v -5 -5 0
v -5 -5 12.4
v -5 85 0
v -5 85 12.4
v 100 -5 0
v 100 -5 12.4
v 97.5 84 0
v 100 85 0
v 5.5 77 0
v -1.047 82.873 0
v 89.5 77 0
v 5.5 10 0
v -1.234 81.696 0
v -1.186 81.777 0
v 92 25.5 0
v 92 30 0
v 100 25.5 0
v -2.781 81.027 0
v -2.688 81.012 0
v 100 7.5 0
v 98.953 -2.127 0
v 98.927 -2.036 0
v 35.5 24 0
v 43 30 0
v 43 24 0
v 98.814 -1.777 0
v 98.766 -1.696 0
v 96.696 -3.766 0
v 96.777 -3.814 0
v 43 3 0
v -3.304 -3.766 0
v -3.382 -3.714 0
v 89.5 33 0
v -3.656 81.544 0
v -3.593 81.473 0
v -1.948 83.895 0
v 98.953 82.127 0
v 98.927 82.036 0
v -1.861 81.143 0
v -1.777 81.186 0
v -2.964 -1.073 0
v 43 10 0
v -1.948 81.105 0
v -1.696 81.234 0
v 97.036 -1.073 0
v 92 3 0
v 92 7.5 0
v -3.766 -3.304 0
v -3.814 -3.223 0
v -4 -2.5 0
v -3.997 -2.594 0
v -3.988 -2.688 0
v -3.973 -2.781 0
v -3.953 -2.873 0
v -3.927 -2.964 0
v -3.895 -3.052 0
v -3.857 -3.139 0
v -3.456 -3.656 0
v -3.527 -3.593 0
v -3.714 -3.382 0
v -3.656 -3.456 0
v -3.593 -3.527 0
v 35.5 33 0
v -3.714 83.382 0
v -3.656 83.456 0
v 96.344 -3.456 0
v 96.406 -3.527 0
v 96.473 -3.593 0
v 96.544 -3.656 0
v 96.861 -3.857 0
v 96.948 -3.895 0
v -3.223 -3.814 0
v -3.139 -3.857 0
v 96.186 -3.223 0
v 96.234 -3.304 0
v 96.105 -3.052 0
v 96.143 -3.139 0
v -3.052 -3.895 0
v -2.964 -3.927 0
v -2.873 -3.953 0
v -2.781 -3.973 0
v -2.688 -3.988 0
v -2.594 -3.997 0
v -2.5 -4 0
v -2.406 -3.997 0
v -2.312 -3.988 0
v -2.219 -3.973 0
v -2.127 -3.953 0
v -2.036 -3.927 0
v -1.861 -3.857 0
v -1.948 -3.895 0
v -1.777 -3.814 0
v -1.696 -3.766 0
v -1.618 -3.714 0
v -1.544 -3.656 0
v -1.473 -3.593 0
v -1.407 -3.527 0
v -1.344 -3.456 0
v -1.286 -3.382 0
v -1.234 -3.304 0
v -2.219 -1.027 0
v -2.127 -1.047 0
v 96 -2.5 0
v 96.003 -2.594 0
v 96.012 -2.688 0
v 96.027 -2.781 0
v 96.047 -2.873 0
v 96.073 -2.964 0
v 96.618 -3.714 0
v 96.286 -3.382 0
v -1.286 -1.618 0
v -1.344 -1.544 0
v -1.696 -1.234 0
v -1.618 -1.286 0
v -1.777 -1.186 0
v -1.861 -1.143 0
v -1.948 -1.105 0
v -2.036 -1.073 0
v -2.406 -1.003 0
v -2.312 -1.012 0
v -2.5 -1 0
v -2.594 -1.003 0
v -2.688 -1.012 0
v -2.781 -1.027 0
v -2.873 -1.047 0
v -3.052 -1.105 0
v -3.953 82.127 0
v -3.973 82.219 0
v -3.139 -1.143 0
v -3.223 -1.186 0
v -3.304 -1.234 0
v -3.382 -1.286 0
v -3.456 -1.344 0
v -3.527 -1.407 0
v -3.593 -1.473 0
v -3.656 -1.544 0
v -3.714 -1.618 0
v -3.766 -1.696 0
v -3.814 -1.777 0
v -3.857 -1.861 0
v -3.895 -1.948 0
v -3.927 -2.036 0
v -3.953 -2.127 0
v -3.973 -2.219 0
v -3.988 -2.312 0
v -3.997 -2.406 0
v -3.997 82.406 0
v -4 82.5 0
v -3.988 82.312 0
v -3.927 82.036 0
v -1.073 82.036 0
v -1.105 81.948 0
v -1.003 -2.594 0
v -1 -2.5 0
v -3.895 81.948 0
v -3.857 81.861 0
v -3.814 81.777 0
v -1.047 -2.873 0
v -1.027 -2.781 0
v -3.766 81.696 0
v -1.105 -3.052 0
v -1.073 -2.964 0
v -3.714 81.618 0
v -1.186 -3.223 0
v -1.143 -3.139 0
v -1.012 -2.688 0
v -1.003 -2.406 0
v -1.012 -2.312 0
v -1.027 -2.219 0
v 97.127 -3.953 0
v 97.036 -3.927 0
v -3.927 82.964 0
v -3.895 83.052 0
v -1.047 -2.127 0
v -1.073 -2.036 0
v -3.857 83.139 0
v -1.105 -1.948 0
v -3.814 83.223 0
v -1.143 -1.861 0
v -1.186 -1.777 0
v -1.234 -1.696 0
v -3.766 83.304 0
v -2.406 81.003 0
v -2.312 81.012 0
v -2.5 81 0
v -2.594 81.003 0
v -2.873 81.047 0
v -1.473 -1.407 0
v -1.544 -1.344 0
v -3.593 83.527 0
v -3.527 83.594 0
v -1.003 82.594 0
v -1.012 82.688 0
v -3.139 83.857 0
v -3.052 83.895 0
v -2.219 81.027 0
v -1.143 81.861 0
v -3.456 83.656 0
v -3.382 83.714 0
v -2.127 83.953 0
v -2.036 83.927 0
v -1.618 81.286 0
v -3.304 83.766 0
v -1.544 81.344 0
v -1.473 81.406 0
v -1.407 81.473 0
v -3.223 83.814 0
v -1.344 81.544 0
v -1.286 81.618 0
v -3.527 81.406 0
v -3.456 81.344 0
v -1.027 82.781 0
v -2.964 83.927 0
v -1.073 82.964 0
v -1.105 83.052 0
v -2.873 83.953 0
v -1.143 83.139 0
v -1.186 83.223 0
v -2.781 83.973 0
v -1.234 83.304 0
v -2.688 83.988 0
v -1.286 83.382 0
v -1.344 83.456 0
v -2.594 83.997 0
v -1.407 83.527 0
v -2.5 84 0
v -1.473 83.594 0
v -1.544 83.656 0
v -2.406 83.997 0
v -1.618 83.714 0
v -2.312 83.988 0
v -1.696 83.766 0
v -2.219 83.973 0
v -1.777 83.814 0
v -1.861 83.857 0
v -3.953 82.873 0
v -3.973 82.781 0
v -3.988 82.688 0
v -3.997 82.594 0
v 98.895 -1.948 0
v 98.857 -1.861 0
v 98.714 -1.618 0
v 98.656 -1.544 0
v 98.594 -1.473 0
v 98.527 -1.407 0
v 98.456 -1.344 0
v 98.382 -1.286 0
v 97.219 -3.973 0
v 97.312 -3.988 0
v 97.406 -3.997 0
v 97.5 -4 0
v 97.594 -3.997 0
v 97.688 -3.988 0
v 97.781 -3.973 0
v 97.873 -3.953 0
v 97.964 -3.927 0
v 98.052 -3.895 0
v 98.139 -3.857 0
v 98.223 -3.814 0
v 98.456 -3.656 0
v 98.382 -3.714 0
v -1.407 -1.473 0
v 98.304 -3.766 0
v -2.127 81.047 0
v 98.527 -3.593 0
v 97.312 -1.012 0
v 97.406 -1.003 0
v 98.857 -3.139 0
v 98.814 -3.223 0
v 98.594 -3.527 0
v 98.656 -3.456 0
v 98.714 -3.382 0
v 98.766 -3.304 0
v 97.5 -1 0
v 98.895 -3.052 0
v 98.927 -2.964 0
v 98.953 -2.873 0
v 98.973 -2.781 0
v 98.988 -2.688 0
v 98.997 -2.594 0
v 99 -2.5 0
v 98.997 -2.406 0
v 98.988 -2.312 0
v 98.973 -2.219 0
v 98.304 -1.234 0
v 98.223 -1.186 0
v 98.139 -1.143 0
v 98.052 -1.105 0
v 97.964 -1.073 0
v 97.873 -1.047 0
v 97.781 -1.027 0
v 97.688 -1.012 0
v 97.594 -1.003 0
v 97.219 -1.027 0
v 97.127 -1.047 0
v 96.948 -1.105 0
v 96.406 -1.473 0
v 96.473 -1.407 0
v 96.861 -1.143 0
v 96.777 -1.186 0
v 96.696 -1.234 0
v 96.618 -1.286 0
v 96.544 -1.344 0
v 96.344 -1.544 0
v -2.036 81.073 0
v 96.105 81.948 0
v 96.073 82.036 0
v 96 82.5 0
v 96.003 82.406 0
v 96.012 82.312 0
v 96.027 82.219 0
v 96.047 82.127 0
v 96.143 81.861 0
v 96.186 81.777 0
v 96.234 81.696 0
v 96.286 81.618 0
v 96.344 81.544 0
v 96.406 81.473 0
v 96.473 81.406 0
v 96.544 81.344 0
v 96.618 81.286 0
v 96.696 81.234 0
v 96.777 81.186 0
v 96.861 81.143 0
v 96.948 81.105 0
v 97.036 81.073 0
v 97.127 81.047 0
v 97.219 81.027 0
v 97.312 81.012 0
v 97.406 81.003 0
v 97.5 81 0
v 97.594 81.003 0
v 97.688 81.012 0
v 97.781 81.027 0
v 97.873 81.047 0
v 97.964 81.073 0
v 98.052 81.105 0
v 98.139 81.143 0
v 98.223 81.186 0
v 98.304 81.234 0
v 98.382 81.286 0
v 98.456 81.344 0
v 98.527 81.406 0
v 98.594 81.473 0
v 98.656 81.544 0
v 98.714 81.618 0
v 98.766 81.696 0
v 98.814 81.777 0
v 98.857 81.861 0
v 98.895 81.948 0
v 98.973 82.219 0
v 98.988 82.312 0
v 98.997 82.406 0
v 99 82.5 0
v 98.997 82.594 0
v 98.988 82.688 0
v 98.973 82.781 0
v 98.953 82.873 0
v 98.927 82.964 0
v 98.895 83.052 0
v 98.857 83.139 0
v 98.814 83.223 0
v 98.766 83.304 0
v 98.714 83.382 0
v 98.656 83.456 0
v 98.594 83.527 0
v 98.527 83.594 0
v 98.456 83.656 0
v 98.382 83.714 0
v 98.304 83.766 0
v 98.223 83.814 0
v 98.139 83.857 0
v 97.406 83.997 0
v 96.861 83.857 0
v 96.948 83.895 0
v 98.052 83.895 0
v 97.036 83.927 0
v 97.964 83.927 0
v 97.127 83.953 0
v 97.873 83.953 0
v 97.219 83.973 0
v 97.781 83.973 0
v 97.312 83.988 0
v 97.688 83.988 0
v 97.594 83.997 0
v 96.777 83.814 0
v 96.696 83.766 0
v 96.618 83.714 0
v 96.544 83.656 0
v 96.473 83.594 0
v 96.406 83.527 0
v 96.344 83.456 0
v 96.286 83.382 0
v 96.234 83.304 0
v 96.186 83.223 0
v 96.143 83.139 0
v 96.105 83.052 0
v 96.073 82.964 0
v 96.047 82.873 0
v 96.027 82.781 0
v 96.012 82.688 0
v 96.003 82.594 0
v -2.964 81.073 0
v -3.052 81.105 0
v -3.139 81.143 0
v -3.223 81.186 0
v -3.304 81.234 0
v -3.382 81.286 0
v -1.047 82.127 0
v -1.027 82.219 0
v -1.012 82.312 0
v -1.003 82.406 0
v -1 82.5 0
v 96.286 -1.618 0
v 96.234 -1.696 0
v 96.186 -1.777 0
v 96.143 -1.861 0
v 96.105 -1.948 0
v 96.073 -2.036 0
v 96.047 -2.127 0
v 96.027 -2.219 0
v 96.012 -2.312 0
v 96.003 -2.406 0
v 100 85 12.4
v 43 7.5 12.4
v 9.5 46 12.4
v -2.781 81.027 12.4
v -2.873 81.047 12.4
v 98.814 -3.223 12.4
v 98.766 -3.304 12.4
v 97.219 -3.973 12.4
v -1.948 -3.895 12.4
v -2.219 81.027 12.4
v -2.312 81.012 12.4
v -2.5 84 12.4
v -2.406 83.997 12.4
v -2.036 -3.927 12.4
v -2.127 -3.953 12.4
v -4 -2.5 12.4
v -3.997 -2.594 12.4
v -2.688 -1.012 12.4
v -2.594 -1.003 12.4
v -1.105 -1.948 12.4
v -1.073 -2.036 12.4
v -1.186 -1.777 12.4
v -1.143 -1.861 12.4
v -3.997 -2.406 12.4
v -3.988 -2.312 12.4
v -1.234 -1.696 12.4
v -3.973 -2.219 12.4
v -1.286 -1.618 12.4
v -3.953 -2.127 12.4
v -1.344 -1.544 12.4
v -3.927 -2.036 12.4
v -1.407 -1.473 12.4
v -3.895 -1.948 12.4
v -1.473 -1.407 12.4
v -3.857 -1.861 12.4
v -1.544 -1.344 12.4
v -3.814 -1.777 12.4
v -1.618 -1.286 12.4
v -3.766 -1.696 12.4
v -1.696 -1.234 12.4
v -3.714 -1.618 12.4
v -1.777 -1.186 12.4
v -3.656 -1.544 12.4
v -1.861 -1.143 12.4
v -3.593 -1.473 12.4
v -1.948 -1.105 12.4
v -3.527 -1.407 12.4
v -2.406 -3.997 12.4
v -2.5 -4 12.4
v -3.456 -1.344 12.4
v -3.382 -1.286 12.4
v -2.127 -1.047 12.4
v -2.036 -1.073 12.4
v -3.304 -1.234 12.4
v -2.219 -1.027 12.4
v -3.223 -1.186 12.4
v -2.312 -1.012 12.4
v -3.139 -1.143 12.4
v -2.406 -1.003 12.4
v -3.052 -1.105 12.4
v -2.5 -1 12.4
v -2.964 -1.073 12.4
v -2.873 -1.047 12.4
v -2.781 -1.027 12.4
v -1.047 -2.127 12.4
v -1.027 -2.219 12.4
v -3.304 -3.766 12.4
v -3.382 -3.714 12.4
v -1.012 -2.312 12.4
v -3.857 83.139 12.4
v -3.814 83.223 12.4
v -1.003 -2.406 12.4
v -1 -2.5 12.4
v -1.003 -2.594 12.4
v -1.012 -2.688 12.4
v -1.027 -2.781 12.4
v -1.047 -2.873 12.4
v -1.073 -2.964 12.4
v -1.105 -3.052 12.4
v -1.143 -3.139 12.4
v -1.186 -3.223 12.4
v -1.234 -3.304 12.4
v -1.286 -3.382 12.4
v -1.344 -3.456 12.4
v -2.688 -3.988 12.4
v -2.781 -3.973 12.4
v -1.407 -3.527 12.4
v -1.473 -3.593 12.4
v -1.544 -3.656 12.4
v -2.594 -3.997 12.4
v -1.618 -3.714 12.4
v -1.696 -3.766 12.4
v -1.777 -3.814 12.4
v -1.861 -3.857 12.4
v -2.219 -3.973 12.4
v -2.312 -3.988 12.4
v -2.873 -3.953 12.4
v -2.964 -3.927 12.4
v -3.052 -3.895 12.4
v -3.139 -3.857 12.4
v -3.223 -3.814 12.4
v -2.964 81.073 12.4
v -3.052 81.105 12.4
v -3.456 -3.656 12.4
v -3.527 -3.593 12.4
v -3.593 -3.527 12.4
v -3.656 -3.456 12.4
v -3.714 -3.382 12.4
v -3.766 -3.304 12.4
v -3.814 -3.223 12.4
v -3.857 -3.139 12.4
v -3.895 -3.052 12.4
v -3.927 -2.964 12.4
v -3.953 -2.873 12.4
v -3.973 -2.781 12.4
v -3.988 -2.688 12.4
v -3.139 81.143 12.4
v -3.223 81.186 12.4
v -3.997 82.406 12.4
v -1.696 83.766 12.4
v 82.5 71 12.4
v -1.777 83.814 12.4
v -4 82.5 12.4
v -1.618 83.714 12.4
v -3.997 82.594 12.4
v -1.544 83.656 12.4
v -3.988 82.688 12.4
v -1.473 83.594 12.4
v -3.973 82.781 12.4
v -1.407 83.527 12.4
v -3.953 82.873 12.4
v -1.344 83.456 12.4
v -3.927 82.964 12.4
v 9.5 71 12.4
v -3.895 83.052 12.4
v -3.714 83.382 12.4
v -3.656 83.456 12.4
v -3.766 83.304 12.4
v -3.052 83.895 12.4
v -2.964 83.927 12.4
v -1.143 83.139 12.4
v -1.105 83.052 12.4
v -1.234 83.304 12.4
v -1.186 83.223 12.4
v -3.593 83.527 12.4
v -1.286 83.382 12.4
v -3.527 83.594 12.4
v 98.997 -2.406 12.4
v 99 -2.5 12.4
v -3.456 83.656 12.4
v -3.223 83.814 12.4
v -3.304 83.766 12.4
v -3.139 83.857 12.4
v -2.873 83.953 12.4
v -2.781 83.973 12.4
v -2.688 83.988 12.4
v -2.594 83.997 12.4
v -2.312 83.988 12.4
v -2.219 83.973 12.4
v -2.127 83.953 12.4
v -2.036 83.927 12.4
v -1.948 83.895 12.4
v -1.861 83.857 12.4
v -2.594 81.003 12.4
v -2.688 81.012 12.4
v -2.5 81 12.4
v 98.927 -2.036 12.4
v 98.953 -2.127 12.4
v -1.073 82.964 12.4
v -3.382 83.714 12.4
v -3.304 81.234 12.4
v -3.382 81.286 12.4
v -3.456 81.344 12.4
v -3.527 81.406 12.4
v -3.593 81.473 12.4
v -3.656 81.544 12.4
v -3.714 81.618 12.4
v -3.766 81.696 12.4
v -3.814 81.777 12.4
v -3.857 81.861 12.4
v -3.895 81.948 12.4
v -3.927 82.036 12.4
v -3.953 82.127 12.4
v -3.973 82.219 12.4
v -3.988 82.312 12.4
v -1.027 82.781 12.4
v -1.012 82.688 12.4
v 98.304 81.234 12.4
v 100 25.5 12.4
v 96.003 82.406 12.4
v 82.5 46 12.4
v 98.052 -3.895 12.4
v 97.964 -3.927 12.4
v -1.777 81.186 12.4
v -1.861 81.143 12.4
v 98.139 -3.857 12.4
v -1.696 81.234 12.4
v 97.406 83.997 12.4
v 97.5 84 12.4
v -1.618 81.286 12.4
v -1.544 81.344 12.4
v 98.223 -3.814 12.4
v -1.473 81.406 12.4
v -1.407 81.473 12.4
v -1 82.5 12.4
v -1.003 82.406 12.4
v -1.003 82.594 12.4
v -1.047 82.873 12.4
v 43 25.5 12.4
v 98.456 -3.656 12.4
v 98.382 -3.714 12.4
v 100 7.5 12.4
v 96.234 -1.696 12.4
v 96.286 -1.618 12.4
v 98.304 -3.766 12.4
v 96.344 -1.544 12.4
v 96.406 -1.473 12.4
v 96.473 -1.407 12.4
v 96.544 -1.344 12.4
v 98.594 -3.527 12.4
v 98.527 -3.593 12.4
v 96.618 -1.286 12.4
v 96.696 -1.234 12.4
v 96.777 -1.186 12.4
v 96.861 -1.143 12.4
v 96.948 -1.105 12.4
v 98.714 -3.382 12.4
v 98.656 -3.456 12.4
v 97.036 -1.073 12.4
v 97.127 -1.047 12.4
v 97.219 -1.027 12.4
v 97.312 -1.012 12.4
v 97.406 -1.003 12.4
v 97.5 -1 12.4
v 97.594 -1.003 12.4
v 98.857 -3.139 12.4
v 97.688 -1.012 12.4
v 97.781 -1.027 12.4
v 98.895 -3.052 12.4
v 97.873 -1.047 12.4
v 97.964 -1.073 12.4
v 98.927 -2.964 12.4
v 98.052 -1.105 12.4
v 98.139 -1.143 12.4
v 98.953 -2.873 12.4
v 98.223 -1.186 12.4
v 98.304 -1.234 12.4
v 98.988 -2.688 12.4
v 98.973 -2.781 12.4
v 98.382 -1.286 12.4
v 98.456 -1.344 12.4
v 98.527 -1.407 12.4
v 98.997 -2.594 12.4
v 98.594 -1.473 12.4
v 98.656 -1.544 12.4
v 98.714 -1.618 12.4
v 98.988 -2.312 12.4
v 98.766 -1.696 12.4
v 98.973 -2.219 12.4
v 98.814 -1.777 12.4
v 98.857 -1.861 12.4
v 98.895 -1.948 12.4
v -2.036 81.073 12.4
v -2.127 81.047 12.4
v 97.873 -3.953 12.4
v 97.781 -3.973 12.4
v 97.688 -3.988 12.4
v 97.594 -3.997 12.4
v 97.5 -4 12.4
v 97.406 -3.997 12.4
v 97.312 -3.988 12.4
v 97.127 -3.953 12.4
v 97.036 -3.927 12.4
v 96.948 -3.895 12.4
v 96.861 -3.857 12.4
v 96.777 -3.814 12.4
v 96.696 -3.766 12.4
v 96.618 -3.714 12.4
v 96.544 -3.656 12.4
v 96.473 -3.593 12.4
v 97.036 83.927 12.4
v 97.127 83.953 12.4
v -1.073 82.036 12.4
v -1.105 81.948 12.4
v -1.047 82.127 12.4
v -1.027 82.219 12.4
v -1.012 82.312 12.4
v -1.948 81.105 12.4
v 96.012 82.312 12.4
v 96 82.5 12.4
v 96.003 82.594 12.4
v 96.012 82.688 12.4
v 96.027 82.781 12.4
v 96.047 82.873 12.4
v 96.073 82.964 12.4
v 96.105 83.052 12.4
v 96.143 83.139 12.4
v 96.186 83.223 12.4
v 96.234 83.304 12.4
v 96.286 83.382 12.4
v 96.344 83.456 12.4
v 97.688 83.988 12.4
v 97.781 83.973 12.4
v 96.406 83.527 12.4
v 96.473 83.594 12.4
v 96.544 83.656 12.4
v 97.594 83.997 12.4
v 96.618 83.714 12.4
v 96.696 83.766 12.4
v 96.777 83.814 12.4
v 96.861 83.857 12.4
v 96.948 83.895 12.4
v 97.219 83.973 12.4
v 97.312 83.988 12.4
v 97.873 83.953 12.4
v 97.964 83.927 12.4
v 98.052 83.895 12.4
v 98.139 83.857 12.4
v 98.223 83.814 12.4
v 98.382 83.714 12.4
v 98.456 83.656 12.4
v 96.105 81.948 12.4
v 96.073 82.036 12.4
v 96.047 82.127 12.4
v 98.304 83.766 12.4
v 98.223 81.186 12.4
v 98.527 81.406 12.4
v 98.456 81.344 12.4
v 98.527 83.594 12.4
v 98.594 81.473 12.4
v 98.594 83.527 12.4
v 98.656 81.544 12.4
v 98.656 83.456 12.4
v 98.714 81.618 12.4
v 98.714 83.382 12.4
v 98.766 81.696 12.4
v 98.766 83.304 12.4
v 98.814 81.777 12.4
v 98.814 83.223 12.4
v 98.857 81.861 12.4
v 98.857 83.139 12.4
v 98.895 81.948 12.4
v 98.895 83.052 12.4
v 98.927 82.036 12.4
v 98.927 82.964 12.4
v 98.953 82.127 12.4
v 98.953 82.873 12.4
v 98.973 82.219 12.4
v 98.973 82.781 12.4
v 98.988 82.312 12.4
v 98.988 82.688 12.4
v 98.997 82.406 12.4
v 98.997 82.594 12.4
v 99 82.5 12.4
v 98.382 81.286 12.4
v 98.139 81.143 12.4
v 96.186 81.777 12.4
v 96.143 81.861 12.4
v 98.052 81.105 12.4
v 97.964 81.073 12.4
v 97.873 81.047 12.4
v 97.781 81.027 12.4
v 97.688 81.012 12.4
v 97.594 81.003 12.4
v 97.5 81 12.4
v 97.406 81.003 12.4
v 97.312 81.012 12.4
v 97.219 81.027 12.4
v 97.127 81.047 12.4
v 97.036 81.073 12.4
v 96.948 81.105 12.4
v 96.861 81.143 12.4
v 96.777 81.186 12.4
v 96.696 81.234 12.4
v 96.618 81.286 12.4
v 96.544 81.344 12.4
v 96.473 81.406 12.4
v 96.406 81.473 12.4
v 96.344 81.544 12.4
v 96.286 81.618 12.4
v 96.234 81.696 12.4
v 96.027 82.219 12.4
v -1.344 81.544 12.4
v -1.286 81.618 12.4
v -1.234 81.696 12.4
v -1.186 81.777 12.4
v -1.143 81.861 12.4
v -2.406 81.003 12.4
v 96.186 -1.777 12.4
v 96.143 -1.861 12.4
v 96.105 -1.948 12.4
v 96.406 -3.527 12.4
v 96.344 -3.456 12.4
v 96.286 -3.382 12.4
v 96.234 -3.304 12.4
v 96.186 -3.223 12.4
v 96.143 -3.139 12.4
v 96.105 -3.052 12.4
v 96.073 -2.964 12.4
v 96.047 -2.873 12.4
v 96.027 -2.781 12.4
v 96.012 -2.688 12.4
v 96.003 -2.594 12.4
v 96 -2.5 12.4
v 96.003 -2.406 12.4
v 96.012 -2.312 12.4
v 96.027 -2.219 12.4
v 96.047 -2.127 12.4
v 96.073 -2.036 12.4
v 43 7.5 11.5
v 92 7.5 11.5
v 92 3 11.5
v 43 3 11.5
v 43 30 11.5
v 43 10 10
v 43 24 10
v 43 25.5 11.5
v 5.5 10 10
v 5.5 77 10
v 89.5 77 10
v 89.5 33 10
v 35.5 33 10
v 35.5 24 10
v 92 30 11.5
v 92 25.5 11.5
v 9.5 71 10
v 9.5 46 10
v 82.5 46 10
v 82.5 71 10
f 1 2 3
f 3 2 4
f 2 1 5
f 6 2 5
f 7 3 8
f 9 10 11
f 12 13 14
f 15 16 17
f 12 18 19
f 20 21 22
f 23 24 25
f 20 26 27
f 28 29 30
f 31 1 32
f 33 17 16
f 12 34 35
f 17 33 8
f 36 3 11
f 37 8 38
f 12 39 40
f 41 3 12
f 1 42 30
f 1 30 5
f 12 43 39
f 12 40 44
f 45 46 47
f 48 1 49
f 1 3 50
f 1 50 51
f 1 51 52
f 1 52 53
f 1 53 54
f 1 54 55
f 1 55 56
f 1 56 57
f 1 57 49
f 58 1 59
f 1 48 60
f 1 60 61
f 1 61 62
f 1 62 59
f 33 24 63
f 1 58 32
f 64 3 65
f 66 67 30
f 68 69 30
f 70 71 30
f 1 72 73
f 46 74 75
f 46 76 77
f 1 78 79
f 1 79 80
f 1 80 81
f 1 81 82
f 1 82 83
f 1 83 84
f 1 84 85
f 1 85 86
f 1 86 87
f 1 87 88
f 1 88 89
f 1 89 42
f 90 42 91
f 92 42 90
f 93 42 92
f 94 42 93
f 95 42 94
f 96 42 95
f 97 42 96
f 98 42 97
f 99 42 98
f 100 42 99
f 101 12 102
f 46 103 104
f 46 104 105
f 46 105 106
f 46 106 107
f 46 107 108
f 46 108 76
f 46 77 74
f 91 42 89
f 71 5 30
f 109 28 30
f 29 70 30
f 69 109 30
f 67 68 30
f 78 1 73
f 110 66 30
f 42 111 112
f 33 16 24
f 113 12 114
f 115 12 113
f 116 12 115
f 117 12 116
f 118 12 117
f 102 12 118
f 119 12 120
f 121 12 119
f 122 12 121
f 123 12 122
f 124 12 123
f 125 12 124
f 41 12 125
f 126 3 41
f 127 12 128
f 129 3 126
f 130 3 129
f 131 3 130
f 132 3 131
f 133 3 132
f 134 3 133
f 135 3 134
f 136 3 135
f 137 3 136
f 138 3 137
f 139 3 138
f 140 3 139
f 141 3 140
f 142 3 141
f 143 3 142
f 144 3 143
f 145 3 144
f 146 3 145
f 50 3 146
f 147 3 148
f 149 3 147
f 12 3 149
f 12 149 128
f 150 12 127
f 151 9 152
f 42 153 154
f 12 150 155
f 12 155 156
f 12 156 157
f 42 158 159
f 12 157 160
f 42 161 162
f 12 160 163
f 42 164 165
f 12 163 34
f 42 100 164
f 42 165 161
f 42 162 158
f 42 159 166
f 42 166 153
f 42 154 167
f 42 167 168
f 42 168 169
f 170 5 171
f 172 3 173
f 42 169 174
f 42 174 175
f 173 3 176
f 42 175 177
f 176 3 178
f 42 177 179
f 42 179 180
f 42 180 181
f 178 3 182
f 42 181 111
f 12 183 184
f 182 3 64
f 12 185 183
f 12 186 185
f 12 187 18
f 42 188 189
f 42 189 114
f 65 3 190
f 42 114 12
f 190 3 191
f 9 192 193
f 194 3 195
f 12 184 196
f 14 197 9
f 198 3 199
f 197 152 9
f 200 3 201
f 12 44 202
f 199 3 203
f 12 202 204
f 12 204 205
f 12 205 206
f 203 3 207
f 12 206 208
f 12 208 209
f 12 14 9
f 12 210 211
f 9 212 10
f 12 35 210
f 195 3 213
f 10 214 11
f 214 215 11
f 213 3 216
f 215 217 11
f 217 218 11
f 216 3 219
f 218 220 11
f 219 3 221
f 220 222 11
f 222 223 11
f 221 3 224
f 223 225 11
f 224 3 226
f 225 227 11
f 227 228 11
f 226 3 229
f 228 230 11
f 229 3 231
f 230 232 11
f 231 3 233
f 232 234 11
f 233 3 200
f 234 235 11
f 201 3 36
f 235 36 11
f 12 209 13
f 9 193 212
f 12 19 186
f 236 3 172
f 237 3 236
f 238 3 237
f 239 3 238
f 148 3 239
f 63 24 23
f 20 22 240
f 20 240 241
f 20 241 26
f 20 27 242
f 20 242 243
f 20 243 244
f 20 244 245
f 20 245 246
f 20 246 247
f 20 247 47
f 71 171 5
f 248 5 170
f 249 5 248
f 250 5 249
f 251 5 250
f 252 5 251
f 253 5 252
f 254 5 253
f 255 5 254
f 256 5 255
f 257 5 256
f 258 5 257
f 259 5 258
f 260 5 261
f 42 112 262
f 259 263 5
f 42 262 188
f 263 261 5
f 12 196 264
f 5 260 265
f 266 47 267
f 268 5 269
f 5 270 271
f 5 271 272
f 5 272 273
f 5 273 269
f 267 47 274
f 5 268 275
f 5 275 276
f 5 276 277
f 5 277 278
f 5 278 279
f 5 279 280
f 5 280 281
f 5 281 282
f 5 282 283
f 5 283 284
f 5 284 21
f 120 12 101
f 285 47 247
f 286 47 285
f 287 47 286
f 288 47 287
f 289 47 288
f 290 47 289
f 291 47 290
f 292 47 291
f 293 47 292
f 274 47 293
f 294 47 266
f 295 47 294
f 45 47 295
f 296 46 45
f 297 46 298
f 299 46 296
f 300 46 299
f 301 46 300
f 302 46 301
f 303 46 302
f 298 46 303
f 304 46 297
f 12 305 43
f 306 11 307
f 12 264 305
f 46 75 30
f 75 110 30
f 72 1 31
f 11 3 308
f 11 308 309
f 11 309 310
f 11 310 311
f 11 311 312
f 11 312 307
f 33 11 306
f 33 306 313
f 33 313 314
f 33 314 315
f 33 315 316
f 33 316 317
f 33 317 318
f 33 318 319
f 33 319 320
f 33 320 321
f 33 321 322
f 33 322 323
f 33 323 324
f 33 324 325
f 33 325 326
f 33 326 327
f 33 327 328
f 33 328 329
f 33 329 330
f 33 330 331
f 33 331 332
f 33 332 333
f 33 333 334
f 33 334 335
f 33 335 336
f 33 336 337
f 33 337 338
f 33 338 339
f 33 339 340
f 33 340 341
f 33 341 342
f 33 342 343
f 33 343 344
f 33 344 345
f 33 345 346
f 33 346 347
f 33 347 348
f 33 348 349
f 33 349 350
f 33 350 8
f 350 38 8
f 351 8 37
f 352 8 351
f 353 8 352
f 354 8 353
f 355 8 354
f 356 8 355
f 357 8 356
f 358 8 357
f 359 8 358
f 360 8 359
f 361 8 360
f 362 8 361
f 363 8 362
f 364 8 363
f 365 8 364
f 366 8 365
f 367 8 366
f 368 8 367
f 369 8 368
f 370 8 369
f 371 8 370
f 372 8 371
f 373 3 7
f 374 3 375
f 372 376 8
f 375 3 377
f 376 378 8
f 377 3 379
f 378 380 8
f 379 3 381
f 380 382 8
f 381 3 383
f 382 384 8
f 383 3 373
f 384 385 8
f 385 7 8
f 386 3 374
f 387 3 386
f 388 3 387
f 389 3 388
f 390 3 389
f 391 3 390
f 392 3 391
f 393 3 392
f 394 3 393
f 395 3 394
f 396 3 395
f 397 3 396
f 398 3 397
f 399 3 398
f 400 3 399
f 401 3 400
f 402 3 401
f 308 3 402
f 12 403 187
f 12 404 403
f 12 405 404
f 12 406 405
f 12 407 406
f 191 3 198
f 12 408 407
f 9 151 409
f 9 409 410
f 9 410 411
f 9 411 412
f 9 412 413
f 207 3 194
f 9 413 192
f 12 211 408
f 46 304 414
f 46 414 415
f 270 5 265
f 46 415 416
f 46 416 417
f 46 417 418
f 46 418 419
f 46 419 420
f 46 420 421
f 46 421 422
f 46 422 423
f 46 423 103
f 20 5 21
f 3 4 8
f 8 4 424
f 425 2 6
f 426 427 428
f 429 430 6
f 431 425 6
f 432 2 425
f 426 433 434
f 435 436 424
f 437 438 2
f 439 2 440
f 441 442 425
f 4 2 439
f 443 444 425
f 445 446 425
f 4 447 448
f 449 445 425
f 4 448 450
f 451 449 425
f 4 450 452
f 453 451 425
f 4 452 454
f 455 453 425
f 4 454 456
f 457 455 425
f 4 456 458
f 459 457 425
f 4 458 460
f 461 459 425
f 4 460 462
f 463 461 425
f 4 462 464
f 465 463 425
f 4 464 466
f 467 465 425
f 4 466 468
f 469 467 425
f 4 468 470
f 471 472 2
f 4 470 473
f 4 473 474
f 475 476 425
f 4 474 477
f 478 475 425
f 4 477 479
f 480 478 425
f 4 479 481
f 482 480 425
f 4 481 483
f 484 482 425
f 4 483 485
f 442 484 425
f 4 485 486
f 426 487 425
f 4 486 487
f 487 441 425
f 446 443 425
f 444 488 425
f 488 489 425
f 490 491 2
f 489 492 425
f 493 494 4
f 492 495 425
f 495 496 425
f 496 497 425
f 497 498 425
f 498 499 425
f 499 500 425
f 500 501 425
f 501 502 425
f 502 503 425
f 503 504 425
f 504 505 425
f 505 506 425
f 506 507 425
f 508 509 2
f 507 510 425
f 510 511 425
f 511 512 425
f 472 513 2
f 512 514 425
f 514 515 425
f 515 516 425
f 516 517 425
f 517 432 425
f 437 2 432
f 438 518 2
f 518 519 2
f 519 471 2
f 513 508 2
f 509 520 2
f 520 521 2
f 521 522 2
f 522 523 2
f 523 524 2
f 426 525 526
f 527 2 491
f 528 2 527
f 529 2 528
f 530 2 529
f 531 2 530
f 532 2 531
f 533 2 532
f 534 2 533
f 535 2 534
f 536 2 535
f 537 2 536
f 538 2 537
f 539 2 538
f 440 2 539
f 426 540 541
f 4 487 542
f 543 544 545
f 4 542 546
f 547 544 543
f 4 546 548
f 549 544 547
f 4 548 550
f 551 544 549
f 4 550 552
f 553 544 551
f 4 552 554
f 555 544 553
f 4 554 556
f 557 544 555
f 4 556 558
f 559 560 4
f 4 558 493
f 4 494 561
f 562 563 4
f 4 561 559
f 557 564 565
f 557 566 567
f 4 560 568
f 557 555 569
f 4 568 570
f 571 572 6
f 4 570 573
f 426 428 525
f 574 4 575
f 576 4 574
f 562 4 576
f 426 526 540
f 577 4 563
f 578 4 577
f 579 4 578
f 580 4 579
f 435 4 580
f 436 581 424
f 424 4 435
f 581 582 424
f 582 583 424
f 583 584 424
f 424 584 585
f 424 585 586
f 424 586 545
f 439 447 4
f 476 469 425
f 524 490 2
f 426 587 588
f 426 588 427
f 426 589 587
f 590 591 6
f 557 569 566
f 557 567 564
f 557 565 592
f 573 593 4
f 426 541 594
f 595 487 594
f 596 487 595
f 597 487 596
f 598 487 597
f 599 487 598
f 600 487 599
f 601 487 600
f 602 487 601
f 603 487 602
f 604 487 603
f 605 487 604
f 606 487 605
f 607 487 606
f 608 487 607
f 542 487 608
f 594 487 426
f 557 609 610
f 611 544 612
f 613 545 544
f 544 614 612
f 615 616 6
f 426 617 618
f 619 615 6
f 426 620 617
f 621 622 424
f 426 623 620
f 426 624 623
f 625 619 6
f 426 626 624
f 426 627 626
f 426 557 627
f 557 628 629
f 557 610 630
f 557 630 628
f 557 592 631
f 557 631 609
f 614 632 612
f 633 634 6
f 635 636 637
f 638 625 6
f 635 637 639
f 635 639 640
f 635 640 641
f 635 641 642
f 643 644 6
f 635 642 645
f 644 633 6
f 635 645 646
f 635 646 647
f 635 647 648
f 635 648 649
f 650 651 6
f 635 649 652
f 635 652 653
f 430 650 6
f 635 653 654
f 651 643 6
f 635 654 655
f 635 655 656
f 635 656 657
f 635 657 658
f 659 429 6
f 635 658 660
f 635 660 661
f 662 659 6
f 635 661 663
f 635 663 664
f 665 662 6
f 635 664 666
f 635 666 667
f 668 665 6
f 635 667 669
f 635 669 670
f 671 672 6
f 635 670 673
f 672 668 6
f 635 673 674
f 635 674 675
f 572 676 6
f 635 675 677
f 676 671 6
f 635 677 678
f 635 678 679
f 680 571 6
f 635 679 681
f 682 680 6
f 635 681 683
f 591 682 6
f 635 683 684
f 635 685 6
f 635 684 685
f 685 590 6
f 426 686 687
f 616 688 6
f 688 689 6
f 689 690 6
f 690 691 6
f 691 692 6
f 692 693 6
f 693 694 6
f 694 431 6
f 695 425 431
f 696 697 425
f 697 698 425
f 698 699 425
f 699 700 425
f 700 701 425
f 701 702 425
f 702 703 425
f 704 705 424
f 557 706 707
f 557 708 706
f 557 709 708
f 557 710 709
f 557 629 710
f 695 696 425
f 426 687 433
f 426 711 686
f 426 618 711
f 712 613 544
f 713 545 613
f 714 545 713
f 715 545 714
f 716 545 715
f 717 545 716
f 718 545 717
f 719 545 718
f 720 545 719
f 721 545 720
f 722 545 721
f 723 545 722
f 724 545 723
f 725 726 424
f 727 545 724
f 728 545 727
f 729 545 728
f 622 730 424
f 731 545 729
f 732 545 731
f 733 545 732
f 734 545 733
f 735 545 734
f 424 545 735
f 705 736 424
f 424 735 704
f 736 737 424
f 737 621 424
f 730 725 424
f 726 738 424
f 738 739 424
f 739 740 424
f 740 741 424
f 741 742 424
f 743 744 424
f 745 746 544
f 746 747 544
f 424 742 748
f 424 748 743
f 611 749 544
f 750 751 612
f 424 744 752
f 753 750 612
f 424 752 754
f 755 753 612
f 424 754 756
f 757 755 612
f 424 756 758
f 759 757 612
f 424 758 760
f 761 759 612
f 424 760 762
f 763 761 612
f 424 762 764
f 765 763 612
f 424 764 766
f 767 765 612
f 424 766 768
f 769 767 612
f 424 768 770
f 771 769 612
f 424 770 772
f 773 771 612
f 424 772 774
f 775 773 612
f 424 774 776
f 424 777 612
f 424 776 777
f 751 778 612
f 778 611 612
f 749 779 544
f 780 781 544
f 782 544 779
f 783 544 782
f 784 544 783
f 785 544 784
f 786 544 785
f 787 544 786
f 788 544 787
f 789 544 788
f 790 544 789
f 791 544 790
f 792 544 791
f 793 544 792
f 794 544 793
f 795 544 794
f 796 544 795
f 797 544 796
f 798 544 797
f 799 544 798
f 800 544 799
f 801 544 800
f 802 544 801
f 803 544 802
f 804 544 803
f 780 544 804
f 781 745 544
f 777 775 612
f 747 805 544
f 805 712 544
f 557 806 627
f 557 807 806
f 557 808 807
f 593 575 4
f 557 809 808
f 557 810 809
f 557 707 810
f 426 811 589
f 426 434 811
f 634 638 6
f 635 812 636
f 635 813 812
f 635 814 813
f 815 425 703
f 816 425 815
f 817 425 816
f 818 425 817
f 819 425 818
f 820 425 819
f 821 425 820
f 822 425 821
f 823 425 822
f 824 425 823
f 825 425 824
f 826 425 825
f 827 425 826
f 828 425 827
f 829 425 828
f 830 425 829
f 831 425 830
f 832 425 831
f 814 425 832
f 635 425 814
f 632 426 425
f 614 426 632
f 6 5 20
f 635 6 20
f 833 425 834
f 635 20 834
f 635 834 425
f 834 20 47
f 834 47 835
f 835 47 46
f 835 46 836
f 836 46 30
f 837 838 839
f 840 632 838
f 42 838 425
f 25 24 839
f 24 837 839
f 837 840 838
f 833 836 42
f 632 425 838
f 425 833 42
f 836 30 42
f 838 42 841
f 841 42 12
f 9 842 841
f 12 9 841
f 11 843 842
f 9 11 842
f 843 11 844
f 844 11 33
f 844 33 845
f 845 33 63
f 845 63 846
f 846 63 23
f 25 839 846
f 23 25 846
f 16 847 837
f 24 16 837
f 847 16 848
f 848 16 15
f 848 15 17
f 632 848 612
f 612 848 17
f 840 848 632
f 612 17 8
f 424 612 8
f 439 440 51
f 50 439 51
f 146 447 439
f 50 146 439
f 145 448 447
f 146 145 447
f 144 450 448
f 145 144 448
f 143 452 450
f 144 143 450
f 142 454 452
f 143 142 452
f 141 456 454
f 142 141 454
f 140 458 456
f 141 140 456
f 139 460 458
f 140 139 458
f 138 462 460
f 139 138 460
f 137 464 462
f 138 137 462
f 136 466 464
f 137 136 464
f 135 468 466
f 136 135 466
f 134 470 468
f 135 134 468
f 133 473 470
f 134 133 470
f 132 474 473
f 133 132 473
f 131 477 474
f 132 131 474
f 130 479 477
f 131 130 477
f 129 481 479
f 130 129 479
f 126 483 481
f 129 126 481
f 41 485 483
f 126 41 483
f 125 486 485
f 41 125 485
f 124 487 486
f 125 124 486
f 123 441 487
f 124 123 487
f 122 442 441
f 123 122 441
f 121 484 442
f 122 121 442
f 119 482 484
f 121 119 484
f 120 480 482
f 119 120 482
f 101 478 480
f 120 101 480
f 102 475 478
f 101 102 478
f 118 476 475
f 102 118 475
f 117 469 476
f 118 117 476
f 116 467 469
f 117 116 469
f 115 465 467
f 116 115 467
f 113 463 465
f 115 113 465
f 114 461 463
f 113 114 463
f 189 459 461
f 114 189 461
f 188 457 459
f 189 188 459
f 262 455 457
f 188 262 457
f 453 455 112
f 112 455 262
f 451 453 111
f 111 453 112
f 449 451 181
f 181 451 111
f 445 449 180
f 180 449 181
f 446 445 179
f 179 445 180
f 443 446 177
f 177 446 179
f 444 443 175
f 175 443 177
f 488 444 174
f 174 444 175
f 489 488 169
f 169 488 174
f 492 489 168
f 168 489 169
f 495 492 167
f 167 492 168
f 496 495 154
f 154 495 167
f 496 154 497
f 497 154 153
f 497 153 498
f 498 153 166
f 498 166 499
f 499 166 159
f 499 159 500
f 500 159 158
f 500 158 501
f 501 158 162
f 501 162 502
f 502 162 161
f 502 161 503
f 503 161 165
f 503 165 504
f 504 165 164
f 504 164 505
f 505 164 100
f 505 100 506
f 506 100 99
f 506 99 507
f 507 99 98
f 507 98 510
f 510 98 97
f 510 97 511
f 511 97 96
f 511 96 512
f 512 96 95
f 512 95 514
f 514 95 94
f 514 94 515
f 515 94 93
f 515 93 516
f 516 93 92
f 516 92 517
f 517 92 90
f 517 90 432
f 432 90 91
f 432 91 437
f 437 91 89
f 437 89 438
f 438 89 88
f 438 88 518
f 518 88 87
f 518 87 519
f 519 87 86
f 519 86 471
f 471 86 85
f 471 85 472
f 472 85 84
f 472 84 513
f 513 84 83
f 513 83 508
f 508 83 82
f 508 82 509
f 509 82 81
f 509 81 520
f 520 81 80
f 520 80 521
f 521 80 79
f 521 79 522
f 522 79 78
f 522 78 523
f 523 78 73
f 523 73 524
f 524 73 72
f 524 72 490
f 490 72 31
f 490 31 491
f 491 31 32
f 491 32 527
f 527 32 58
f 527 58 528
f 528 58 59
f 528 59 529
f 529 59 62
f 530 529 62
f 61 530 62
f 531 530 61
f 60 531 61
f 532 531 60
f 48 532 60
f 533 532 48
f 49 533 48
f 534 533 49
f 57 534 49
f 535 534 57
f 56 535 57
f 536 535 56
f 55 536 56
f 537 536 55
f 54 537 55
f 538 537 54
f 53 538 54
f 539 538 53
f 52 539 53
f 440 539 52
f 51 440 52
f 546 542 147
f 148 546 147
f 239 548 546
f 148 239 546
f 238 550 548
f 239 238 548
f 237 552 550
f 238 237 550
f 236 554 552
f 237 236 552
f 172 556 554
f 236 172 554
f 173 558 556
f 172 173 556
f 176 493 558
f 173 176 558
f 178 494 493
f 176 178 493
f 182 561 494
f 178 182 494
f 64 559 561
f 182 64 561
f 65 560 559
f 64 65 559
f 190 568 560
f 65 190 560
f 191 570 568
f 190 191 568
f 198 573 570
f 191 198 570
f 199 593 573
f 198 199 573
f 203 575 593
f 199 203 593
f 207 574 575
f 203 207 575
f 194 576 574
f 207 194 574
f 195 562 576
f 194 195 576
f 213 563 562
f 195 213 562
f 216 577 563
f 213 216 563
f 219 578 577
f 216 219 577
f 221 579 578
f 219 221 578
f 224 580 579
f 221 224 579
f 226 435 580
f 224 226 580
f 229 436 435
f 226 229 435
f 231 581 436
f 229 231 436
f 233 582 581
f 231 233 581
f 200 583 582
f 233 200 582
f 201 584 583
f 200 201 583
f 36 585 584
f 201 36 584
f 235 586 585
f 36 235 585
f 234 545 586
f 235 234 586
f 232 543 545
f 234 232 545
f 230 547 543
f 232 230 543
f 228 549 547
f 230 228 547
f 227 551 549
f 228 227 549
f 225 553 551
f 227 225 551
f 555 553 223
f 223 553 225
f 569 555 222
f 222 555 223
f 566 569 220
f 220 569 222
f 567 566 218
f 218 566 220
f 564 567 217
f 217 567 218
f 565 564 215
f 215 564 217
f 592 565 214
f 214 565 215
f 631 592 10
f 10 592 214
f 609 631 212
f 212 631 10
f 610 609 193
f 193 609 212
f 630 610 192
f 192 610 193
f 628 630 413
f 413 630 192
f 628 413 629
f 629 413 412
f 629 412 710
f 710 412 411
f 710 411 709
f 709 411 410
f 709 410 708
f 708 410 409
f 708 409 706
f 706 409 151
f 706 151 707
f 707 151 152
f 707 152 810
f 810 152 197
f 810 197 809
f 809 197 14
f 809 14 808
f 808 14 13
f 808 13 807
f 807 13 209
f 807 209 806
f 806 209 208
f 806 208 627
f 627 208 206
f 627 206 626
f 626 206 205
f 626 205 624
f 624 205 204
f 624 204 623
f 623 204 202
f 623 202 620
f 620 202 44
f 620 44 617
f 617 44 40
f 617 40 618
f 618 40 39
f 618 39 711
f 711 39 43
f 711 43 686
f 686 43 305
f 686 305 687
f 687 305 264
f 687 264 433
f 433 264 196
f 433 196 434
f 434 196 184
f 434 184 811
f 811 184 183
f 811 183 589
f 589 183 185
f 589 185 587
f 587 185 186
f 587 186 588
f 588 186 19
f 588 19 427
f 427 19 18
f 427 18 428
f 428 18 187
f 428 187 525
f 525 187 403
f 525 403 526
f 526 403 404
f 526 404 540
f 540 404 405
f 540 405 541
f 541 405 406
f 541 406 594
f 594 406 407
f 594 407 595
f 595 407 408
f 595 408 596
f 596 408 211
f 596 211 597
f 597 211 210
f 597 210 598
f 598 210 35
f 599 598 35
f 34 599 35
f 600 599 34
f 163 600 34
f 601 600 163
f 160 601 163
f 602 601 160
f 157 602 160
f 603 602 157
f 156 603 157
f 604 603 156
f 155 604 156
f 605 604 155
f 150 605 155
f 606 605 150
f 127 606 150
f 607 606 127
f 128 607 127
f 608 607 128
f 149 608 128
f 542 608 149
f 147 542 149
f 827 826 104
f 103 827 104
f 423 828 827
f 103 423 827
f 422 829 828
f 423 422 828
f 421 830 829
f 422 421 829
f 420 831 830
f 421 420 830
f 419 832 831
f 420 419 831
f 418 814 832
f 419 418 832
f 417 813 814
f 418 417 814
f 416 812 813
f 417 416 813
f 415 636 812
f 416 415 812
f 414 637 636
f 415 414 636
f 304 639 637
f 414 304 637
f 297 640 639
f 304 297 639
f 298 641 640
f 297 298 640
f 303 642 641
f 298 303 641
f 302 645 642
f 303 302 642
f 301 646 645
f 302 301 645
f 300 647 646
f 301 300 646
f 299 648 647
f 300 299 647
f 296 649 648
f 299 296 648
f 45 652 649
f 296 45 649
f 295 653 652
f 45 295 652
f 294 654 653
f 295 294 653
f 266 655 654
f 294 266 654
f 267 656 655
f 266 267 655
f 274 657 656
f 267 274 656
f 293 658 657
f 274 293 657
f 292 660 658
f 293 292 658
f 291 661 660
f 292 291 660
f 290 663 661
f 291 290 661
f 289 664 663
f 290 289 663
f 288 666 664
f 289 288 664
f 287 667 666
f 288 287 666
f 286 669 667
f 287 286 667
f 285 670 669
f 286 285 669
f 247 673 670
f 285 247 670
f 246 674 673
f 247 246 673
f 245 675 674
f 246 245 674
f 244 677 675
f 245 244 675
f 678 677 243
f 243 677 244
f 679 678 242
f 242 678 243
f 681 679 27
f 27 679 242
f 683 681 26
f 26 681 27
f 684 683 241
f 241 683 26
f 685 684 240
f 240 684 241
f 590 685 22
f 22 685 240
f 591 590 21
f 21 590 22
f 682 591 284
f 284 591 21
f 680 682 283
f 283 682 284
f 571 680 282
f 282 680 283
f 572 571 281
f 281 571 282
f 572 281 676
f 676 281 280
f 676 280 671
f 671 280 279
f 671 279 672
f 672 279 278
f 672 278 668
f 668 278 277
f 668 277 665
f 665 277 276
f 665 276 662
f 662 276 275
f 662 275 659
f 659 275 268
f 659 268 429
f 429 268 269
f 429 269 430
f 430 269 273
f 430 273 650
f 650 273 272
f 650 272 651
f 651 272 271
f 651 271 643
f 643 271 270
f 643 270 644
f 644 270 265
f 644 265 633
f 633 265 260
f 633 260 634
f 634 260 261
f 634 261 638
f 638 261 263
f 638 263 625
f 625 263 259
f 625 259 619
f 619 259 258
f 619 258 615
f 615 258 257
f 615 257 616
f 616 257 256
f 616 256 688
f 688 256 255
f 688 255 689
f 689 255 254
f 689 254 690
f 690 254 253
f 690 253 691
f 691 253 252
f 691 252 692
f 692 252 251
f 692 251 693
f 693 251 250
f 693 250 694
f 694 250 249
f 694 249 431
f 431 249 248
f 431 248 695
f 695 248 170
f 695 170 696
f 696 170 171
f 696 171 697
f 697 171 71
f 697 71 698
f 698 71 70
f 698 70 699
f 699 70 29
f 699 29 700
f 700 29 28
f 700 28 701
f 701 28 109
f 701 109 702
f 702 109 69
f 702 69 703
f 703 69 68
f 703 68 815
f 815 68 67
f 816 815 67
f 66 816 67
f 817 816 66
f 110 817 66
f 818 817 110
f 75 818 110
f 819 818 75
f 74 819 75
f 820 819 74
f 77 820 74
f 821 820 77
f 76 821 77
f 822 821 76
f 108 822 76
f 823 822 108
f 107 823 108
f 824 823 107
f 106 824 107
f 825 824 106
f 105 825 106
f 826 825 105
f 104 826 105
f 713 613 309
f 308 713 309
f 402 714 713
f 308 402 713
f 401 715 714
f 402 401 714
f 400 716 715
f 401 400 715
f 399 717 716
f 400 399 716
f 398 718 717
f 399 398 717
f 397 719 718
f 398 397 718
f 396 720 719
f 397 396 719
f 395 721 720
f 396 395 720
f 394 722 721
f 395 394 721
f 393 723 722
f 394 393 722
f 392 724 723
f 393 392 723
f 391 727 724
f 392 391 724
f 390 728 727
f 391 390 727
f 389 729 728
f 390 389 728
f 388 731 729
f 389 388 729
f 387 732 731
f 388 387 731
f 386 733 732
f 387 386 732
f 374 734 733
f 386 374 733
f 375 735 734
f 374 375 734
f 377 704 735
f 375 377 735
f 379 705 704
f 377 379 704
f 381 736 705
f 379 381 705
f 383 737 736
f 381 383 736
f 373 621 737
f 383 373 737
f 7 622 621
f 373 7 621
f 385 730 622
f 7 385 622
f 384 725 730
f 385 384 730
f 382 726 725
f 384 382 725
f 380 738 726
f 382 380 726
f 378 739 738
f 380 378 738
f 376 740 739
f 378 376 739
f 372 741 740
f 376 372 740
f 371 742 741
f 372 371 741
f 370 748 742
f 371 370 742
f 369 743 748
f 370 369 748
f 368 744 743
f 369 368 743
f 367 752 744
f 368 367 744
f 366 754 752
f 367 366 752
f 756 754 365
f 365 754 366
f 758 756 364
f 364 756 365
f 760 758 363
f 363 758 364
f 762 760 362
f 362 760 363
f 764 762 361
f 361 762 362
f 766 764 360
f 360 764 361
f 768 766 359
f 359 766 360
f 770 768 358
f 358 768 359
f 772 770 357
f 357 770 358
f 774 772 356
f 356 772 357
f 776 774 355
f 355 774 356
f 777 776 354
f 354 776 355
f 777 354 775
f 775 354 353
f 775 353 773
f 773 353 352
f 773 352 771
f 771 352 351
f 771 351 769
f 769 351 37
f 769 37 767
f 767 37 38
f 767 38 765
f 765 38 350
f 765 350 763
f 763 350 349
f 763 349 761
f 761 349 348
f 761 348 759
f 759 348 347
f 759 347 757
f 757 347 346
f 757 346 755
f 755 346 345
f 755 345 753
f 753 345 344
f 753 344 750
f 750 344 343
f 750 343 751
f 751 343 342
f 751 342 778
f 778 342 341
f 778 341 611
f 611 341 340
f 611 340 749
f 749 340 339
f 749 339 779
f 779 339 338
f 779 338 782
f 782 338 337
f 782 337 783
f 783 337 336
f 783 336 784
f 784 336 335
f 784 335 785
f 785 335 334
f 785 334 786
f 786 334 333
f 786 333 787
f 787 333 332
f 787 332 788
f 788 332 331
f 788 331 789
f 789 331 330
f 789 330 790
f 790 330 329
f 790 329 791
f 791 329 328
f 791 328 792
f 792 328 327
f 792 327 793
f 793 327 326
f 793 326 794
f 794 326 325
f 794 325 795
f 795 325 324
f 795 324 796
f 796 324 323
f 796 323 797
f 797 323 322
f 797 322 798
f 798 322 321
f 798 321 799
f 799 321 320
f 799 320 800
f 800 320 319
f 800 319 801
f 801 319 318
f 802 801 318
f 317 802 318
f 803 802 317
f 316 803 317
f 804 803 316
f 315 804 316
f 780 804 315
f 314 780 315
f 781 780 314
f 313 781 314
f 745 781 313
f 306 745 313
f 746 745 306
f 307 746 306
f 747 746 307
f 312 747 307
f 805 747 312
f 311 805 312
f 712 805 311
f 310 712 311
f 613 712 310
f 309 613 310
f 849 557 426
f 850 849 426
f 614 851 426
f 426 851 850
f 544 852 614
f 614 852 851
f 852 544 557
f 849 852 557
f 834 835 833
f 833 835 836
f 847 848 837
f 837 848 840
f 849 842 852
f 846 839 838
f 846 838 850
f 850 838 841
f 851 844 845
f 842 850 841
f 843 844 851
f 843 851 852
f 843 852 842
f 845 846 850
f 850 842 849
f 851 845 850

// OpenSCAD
difference() {
	translate([-5, -5, 0])
		cube([105, 90, 12.4]);
	union() {
		translate([43, 3, 0])
			// ESP 8266
			union() {
				cube([49, 27, 11.5]);
				translate([0, 4.5, 0])
					cube([60, 18, 14]);
			}

		translate([5.5, 33, 0])
			// LCD
			union() {
				cube([84, 44, 10]);
				translate([4, 13, 0])
					cube([73, 25, 14]);
			}
		
		translate([5.5, 10, 0])
			cube([84, 14, 10]);
		translate([5.5, 10, 0])
			cube([30, 34, 10]);
		
		translate([-2.5, -2.5, 0])
			cylinder(d=3, h=12.4, $fn=100);
		translate([105 -5 -2.5, -2.5, 0])
			cylinder(d=3, h=12.4, $fn=100);
		translate([-2.5, 90 -5 -2.5, 0])
			cylinder(d=3, h=12.4, $fn=100);
		translate([105 -5 -2.5, 90 -5 -2.5, 0])
			cylinder(d=3, h=12.4, $fn=100);
	}
}
